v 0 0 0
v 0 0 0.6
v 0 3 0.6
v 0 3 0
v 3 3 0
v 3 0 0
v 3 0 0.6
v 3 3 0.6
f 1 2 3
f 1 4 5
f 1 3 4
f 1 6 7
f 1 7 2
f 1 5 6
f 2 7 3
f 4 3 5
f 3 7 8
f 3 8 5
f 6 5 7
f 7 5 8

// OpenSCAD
/* Warning, this is a very basic generator with a lot of approximation 
input data : [UQFN, MLA, 3x3x0.6mm, 20, , A, C04-01052A]
generated by com.zoubworld.electronics.cad.model3d.Basic
Date : Sun Feb 15 10:50:49 CET 2026
*/

//body
color("black")
translate([0,0,0])
cube([3.0,3.0,0.6], center=false);
